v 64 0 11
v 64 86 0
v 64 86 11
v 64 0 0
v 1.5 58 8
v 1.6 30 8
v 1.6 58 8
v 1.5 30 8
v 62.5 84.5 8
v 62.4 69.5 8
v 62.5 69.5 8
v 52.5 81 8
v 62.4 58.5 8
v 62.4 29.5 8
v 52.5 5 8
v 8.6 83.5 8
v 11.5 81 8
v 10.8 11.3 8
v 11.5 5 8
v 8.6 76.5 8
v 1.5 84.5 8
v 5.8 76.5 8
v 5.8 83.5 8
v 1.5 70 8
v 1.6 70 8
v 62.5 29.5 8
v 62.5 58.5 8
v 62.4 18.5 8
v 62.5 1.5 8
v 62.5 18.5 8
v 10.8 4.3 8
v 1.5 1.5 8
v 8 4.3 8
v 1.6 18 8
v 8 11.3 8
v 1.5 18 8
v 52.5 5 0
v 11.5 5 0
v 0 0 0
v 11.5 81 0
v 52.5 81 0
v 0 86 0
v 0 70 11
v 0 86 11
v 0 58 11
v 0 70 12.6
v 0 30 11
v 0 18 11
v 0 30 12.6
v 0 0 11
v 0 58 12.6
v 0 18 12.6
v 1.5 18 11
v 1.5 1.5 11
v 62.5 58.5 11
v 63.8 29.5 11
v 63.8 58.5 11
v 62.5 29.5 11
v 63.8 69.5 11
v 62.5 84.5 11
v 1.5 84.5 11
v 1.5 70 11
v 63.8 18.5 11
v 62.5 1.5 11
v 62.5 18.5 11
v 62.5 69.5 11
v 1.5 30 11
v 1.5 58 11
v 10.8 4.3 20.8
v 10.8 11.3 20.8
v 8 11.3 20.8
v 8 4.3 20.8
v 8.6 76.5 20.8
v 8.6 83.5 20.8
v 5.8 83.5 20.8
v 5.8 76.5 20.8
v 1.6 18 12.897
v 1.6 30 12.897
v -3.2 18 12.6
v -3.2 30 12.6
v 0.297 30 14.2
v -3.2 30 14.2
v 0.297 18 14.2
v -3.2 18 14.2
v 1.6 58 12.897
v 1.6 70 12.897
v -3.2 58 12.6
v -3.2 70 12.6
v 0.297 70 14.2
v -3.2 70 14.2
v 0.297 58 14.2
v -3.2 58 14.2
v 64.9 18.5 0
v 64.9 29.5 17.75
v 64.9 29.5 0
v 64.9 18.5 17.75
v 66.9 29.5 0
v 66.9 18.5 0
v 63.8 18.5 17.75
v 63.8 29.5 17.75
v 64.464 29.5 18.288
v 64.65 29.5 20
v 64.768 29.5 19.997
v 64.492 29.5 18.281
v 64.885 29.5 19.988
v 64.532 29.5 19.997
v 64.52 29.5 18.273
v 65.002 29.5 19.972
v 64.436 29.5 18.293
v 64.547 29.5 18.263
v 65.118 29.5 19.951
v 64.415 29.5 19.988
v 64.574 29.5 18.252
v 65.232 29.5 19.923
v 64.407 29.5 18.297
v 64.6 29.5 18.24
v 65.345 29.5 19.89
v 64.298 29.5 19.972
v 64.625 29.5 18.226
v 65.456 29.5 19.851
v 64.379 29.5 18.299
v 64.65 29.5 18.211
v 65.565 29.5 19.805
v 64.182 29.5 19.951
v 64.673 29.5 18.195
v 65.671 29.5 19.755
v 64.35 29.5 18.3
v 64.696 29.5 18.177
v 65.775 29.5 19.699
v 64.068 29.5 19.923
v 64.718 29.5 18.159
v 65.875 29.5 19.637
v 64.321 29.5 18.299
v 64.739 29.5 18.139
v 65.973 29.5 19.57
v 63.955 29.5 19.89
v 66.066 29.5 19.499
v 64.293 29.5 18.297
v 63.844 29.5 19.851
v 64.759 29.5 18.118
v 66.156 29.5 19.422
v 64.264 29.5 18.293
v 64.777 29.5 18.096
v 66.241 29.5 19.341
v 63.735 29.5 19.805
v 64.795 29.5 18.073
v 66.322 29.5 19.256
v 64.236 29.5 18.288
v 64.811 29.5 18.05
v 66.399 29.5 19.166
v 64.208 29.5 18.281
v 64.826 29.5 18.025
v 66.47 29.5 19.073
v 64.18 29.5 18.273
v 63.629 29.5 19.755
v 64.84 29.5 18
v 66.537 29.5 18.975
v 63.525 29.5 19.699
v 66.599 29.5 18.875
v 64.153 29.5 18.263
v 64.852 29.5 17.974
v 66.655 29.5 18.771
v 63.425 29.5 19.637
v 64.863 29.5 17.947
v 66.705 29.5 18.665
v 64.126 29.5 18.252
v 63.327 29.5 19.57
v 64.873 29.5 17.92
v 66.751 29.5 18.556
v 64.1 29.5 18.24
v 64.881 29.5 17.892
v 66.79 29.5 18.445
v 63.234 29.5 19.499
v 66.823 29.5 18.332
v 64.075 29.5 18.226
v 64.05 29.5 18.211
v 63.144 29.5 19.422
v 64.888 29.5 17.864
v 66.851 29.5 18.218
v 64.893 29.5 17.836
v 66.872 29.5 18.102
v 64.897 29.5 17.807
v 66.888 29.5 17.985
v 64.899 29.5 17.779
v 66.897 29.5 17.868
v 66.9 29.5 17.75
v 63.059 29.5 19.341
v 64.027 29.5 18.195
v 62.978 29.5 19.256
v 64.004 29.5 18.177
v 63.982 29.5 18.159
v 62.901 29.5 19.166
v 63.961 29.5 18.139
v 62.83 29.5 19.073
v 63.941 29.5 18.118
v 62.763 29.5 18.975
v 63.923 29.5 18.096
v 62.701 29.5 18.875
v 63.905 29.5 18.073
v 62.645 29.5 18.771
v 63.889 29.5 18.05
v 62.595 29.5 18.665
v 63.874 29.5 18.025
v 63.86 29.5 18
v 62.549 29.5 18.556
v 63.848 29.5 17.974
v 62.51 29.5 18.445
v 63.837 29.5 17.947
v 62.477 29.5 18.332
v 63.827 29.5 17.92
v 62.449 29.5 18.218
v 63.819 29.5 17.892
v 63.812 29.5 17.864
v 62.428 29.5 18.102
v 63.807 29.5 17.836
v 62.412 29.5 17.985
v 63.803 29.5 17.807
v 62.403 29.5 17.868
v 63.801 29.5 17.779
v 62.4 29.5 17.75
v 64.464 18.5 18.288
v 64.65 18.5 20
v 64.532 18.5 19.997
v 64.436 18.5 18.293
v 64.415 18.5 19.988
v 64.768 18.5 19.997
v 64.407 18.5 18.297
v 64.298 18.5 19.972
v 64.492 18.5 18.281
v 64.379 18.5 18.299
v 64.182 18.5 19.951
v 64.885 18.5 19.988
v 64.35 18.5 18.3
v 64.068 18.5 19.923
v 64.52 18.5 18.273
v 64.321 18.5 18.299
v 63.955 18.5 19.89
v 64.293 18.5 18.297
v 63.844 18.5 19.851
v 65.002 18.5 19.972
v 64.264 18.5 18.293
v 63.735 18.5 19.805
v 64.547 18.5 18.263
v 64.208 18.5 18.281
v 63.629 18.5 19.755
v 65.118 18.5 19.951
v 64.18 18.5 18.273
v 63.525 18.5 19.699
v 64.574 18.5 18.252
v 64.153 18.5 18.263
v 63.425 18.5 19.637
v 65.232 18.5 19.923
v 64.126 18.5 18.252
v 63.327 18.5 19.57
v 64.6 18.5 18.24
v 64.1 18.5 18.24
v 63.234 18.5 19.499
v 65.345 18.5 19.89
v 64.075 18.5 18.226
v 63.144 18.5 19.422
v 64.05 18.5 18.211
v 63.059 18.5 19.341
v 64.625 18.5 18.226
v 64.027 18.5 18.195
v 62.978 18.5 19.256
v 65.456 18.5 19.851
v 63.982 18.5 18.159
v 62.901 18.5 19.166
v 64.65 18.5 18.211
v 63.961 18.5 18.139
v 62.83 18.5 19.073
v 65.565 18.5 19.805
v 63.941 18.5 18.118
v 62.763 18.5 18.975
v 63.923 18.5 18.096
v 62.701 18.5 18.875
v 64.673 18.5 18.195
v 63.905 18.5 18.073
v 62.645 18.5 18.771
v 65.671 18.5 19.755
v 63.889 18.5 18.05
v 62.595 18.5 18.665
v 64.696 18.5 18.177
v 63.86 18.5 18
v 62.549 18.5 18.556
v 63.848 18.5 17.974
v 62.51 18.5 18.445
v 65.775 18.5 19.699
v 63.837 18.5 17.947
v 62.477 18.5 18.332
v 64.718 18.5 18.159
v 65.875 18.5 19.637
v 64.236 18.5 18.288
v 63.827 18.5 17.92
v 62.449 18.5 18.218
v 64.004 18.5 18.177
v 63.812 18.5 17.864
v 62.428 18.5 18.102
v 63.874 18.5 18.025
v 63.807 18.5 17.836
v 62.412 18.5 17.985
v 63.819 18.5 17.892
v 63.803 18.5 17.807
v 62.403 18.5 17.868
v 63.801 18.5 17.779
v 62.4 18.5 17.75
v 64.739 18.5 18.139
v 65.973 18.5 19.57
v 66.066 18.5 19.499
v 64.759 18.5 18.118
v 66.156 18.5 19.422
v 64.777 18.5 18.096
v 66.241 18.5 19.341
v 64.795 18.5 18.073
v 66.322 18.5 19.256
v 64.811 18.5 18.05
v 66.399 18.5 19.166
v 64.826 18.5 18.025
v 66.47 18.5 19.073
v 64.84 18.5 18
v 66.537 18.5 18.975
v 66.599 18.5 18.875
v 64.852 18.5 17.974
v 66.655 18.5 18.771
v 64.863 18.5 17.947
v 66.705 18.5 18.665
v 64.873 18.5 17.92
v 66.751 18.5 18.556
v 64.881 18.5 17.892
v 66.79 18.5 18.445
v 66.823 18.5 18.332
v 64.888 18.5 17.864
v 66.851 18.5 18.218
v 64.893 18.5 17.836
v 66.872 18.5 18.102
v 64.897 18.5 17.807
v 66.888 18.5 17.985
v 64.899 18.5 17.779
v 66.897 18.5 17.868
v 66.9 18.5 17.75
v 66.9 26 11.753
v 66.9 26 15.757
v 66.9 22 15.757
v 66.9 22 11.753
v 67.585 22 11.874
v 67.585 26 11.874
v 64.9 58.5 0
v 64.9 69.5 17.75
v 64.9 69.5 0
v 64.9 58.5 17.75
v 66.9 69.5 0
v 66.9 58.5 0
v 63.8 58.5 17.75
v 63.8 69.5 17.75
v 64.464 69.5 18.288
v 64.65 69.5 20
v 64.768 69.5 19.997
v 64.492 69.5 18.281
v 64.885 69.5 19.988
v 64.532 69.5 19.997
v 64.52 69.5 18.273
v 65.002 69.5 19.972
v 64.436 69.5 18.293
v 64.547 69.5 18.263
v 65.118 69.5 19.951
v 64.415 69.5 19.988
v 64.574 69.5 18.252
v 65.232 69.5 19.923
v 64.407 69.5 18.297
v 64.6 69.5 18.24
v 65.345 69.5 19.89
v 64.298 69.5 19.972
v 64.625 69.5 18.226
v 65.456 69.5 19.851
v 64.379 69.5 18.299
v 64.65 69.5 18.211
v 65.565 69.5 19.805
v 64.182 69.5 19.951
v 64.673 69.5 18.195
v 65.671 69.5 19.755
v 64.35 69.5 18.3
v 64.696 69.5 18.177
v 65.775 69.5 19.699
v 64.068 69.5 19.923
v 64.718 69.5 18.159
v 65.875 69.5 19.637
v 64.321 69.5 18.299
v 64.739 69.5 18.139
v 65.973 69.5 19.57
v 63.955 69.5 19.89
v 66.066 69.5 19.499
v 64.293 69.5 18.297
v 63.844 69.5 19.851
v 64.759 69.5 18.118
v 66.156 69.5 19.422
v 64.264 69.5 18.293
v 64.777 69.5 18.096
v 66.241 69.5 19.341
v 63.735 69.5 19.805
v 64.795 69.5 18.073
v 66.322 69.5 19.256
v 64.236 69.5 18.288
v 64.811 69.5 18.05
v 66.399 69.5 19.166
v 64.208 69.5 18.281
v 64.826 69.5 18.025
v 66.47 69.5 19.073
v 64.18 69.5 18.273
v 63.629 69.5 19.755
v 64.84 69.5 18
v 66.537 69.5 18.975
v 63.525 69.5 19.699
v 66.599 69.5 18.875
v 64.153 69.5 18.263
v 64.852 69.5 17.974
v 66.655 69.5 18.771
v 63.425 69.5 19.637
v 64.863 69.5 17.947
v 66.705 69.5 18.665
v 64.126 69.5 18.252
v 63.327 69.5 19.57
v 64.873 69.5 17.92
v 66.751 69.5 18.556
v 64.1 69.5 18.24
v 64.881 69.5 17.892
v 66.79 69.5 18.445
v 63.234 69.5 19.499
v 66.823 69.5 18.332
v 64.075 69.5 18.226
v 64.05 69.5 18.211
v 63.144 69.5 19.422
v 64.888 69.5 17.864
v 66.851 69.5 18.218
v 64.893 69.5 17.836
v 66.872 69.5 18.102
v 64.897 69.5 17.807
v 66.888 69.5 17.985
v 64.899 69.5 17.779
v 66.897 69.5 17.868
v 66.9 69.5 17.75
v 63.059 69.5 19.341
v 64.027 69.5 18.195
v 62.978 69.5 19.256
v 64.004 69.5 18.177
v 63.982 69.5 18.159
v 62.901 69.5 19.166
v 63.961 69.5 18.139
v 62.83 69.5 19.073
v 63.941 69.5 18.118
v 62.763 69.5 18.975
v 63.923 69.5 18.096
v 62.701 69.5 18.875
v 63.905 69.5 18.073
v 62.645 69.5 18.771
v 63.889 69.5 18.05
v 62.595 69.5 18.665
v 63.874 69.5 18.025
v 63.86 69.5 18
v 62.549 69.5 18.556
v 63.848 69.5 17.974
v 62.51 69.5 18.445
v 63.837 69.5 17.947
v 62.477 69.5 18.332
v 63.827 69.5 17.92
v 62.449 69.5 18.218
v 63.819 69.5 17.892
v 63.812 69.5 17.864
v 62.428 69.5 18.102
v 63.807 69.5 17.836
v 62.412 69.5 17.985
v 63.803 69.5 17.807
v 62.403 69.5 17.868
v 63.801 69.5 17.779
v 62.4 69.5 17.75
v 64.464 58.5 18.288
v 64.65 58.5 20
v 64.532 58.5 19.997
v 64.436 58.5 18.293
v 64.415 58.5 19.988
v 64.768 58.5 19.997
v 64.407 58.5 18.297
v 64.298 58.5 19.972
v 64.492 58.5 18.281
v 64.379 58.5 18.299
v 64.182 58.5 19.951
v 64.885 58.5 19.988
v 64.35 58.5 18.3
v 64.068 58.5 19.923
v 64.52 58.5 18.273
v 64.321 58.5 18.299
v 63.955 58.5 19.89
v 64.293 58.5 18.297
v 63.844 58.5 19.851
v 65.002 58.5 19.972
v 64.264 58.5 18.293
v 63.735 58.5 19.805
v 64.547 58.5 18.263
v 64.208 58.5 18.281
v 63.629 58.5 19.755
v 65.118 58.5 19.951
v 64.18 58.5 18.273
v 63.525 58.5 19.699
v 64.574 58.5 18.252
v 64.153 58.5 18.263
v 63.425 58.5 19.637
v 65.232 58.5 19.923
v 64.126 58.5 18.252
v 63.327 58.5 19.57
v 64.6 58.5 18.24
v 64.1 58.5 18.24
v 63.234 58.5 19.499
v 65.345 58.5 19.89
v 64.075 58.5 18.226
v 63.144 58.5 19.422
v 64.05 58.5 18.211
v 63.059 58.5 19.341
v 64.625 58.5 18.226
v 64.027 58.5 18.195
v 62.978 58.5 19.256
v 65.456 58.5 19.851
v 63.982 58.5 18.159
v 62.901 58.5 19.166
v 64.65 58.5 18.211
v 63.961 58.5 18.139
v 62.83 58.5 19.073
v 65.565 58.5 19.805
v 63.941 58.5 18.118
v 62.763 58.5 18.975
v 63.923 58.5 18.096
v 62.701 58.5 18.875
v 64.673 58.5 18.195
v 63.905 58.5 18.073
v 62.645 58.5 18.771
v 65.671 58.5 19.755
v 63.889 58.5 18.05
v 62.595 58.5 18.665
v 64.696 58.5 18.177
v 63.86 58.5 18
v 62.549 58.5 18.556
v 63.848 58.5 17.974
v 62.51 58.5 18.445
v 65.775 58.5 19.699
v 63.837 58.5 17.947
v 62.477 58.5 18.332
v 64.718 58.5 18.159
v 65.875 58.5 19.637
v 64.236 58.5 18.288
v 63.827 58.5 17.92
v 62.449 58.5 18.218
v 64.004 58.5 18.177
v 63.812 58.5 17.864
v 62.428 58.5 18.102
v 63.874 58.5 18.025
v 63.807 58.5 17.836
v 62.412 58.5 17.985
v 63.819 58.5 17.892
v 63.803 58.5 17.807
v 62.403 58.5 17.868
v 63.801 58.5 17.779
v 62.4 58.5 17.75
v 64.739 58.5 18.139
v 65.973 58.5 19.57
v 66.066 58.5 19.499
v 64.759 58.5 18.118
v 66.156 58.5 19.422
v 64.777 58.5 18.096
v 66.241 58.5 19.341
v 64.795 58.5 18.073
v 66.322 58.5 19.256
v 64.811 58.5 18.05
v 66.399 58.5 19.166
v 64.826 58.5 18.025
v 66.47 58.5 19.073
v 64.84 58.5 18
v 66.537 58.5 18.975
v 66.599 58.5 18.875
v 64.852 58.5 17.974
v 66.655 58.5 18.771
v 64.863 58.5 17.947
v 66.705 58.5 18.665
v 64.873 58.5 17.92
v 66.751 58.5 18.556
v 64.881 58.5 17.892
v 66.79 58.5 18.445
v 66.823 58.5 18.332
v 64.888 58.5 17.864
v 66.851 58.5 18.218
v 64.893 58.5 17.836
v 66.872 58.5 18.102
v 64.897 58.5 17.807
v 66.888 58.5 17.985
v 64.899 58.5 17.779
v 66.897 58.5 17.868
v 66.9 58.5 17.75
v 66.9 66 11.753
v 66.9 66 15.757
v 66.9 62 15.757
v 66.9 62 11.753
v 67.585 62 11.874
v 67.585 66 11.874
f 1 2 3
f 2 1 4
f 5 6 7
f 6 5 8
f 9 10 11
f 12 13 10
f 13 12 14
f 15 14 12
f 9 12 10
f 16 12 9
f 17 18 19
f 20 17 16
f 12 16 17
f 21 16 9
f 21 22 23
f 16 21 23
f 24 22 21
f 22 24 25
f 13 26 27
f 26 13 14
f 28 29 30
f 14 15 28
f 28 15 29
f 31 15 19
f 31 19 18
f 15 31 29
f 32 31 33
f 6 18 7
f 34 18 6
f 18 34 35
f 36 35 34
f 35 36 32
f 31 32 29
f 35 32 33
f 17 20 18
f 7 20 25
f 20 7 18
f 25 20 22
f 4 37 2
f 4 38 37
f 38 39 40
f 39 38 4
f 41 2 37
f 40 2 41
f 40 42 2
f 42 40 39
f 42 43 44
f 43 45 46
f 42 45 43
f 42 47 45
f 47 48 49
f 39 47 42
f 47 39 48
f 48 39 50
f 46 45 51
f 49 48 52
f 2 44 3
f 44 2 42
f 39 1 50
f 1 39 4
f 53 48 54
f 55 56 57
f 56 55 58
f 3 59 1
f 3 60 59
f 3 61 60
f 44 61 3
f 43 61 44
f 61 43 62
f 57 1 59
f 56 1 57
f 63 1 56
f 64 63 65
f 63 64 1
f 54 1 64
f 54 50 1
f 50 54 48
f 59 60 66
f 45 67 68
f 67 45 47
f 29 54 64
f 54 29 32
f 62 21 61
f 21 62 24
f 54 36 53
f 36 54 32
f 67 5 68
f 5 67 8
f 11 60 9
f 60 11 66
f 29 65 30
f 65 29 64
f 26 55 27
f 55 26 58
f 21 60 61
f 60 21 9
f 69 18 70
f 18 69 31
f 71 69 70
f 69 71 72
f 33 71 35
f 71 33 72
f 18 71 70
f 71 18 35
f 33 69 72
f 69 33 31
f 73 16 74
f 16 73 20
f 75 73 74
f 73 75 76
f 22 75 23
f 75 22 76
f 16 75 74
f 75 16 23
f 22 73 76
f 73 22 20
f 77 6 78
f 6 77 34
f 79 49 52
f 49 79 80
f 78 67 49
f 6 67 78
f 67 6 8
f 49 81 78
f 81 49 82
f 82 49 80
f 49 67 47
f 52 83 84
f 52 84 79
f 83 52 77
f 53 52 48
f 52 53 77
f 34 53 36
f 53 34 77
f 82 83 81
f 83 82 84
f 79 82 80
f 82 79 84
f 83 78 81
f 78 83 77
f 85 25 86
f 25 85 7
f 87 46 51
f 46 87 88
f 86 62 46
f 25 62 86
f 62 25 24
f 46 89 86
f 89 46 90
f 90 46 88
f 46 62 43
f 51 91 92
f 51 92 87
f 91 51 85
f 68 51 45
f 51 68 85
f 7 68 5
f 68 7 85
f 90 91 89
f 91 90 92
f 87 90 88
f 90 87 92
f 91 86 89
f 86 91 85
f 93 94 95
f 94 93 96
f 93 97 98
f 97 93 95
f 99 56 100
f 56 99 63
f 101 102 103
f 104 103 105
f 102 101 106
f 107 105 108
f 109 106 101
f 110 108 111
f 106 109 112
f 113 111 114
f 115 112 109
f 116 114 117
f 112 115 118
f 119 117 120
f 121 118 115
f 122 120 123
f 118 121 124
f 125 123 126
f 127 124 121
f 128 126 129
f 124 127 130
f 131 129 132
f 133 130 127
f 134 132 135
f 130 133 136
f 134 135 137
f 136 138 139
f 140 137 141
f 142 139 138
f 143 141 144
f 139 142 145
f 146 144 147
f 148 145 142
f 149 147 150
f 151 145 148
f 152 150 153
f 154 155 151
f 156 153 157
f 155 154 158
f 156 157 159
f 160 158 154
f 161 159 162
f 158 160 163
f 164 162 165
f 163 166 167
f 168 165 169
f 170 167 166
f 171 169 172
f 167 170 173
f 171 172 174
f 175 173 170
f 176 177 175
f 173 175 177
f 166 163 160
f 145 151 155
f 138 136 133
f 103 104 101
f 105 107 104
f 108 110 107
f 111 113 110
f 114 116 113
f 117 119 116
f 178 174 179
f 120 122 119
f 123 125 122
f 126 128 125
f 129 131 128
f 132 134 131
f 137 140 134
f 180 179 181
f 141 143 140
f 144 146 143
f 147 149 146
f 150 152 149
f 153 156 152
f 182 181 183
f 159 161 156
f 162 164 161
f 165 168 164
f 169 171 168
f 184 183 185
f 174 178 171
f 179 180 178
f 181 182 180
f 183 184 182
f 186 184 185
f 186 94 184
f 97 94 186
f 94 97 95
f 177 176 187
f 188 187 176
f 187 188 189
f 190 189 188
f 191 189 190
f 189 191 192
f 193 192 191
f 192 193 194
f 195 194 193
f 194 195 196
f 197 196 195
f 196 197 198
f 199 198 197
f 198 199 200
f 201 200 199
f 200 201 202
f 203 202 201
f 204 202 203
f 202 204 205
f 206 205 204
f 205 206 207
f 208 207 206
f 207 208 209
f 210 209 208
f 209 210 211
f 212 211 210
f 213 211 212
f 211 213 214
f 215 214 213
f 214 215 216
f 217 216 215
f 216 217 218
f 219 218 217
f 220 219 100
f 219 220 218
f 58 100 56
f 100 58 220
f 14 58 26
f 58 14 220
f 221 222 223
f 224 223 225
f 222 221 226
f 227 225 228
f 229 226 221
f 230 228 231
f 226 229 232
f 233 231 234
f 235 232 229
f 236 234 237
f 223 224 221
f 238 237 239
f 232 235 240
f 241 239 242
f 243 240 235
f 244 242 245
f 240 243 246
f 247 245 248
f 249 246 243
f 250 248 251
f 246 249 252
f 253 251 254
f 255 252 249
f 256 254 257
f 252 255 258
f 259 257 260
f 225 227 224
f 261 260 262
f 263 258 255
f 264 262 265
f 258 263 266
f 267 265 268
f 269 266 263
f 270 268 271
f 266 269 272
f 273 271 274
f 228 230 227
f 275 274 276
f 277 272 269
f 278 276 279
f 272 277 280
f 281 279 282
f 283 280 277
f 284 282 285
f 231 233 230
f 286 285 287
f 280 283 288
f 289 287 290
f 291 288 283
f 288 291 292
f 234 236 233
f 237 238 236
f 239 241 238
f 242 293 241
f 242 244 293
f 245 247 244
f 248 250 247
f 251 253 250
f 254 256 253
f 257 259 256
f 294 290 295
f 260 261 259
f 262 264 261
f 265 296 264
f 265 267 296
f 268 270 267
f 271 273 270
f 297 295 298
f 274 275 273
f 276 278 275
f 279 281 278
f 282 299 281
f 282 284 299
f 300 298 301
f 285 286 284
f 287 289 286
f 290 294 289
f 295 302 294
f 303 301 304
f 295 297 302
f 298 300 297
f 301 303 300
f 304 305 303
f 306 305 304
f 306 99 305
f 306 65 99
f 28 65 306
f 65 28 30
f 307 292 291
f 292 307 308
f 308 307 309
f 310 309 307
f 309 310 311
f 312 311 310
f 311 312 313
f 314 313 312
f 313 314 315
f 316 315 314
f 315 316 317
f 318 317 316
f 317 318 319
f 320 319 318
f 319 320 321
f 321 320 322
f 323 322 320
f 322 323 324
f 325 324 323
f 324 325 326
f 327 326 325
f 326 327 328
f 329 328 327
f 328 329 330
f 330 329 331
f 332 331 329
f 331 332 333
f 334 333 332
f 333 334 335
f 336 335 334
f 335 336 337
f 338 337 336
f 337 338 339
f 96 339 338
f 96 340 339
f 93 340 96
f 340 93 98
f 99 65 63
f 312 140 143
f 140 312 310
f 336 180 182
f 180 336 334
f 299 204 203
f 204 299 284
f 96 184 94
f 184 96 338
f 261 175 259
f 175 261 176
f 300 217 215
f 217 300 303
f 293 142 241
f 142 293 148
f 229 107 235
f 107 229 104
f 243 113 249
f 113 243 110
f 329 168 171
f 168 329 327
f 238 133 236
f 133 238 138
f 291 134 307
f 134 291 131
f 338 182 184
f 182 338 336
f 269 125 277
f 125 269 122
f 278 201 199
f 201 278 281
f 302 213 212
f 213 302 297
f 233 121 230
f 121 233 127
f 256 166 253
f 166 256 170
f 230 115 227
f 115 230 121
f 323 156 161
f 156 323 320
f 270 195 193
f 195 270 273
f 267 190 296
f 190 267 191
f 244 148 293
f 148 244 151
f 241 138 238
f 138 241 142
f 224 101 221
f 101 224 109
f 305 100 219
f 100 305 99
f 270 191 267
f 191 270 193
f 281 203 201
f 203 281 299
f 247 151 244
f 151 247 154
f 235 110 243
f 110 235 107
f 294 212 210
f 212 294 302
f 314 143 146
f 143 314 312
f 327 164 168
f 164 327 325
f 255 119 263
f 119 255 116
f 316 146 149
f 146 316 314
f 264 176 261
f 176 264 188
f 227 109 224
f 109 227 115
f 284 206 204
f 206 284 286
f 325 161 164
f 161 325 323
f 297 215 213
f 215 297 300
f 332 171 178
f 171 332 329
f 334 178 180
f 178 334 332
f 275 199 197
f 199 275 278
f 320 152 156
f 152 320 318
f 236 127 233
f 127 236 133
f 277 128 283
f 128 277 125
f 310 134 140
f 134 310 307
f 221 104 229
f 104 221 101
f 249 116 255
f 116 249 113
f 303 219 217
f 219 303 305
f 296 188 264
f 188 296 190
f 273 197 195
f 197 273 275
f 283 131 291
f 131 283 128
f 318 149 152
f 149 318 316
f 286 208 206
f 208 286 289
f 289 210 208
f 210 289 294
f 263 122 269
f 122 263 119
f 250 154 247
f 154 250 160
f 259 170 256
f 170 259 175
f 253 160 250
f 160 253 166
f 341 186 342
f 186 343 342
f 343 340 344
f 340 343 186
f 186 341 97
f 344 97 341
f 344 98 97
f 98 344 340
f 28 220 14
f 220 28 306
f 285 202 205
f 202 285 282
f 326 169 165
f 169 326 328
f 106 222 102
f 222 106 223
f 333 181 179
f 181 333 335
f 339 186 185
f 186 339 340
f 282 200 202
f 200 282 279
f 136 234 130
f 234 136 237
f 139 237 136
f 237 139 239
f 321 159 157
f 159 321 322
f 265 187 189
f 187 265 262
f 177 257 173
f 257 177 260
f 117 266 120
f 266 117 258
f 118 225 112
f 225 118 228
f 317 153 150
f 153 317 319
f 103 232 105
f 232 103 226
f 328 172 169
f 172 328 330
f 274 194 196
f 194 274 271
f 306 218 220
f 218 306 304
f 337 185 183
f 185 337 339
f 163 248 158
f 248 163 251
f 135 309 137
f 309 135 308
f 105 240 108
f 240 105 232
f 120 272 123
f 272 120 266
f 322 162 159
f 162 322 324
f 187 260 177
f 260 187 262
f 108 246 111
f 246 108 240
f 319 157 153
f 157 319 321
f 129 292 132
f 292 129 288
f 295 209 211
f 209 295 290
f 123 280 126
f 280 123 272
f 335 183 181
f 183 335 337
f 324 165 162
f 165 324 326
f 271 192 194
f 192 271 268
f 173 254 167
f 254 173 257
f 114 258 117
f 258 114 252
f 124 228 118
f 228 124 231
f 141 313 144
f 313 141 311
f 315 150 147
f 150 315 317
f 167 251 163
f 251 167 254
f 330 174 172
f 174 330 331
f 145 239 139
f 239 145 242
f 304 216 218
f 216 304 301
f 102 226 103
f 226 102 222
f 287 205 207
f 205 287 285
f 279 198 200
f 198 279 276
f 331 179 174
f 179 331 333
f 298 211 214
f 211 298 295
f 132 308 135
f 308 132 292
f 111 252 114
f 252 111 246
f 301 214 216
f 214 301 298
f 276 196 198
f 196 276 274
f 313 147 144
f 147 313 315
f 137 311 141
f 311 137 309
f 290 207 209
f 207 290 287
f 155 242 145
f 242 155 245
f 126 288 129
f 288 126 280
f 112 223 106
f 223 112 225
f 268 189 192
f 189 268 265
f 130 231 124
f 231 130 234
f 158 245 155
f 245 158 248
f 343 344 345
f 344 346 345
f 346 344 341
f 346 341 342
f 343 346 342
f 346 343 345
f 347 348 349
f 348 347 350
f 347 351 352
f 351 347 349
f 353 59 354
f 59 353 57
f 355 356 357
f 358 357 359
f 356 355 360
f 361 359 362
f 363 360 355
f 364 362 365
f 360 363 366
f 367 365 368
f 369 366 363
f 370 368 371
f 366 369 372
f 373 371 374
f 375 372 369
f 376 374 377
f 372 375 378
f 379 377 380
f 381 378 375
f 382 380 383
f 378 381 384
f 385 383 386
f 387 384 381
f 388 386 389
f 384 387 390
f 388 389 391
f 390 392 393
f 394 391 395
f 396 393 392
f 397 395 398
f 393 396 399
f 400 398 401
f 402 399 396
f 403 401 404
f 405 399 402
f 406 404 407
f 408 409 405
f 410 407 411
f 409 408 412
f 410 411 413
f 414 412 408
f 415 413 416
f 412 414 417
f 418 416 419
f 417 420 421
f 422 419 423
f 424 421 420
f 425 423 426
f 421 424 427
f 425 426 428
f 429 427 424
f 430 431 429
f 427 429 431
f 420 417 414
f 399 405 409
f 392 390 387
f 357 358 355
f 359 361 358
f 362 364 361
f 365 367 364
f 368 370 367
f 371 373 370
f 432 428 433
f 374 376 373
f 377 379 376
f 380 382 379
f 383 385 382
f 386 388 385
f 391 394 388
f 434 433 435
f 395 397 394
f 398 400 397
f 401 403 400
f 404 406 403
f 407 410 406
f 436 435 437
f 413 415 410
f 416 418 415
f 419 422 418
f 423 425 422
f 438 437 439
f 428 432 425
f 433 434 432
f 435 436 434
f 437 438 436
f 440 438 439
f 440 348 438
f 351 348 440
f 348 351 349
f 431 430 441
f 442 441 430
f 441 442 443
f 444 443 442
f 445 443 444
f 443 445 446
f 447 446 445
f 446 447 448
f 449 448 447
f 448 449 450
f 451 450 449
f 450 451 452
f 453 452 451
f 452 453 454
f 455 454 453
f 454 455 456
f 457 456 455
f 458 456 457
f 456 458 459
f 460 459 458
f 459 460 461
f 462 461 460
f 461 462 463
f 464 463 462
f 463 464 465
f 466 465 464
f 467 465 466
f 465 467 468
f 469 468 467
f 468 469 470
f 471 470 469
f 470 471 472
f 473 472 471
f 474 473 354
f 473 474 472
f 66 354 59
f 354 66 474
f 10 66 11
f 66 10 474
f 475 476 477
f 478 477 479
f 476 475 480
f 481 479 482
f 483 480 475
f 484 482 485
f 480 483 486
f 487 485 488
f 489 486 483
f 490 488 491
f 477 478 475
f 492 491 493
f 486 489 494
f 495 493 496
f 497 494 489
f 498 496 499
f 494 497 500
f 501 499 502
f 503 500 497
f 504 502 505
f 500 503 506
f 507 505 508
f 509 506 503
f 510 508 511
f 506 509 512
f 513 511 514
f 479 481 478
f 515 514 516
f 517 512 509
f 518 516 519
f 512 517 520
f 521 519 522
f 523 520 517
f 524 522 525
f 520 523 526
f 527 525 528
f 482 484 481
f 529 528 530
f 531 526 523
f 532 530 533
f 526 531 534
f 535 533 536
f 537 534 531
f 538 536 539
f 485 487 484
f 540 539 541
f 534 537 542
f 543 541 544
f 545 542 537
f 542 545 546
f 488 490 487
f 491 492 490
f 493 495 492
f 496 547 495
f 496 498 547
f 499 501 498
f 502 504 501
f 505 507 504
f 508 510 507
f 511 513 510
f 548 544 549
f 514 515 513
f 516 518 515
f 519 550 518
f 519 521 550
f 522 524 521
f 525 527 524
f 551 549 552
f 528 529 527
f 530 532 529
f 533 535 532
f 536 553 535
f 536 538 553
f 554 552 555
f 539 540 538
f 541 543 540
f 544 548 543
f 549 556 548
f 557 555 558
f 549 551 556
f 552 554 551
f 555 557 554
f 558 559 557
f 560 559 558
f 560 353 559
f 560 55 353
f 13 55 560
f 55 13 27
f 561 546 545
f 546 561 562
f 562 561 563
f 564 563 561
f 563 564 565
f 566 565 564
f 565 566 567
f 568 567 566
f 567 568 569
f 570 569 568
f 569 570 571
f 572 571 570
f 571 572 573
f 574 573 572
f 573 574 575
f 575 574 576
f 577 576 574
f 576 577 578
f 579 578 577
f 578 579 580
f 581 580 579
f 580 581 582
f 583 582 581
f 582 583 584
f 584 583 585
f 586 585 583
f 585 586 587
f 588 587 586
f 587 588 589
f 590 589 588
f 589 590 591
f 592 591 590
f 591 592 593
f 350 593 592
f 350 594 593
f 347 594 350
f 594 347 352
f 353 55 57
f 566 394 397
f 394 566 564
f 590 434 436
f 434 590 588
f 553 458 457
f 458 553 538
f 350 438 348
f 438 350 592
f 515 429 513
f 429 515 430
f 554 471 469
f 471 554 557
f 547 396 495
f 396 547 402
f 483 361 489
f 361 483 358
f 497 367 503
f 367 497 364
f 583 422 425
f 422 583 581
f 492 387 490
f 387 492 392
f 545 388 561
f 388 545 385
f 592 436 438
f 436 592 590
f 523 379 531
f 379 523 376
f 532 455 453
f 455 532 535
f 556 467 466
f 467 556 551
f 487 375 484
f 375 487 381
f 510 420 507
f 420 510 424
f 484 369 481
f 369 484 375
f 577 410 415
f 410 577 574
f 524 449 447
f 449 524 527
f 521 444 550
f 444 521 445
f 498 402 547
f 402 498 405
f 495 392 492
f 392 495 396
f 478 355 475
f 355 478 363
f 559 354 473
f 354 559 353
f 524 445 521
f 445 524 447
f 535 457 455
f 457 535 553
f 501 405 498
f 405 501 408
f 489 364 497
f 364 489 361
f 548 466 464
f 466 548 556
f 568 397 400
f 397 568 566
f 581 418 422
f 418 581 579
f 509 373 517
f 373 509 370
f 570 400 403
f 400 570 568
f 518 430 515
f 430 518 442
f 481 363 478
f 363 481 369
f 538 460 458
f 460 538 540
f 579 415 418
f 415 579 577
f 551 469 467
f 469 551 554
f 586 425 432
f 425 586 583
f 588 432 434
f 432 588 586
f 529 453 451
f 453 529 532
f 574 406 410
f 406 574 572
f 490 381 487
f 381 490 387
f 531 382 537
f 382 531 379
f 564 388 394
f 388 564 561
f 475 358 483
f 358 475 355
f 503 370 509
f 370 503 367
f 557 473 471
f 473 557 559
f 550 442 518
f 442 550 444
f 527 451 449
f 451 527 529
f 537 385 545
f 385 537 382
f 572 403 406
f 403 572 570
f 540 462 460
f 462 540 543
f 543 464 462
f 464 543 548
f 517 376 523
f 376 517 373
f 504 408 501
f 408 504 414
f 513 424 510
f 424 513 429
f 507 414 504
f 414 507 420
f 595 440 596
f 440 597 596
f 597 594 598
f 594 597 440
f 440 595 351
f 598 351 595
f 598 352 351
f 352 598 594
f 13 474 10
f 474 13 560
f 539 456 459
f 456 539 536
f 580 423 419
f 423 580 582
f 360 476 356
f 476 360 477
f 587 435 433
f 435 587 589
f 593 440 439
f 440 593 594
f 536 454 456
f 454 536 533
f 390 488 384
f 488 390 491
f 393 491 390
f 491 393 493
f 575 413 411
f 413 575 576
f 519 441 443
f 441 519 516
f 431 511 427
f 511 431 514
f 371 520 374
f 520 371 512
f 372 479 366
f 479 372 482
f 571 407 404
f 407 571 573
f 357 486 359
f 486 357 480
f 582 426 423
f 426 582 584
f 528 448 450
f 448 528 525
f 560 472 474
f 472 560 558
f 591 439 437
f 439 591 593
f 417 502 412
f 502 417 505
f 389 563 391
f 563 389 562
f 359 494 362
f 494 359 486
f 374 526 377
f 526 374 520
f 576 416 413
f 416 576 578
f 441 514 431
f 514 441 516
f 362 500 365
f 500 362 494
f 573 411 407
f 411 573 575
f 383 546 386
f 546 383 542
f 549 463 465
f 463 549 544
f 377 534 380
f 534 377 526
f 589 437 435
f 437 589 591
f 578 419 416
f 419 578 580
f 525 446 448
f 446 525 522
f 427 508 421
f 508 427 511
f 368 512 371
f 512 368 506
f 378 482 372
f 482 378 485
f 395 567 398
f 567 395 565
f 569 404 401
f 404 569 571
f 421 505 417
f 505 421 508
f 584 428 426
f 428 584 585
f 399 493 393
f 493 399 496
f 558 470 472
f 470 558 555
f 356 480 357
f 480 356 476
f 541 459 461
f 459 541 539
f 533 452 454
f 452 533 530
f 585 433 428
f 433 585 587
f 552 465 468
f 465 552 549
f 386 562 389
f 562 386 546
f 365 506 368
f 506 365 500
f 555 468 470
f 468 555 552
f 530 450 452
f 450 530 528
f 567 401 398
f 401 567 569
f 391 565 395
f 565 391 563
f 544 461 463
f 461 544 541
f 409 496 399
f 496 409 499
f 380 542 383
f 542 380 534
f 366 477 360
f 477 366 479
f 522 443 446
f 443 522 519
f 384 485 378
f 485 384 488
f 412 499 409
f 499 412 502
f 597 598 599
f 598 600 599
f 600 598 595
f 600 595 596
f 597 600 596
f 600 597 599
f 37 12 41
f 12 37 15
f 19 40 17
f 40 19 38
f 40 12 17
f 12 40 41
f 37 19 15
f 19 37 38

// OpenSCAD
// ramecek
fullx = 64;
fully = 86;
fullz = 8;
// klec na 2x LiIon 18650
bkx = 41;
bky = 76;
bkz = 23;
// obrysovy ramecek
orstena = 1.5;
orz = 3;

// kontakt baterie na strane pevnych uchytu
batxminus = 8;
batxplus = 5.8;
batx = 2.8;
baty = 7;
batyminus = 7.8;
batyplus = 80;
batz = 13;
batzzero = 7.8;

// ohyby pro pant 
pantypos1 = 24;
pantypos2 = 64;
panty = 12;
pantd = 1.6;
panto = 1.5;
pantz = fullz+orz+pantd;

// spony: obracene U vyska 9mm, sirka 12mm hloubka 5mm
sponax = 4.5;
sponay = 11;
sponaz = 9;
sponad = 1.7;


posxvypl = (fullx - bkx)/2;
posyvypl = (fully - bky)/2;
poszvypl = 0;

module zaklblok() {
   cube([fullx,fully,fullz]);
   translate([0,0,fullz]) { cube([fullx,orstena,orz]);}
   translate([0,0,fullz]) { cube([orstena,fully,orz]);}
   translate([fullx-orstena,0,fullz]) { cube([orstena,fully,orz]);}
   translate([0,fully-orstena,fullz]) { cube([fullx,orstena,orz]);}
}

module batconn() {
   translate([batxminus,batyminus - baty/2,batzzero]) cube([batx,baty,batz]);
   translate([batxplus,(batyplus-baty/2),batzzero]) cube([batx,baty,batz]);
}

module pant() {
  difference() {
    union() {
      cube([pantd,panty,pantz]);
      translate([-2*pantd,0,pantz]) cube([3*pantd,panty,pantd]); 
    }
    union() {
    translate([-pantd*0.1,0,pantz+2.7*pantd]) rotate([0,135,0]) cube([pantd,panty,pantd*2.7]);
    }
  }  
}
  
module panty() {
   translate([0,pantypos1 - panty/2,0]) pant();
   translate([0,pantypos2 - panty/2,0]) pant();
}

module spony() {
 translate([fullx-pantd,pantypos1 - sponay/2,0]) spona();
 translate([fullx-pantd,pantypos2 - sponay/2,0]) spona();   
}
module spona() {
    difference() {
      union() {  // plna cast
        cube([sponax,sponay,fullz+orz+sponaz-sponax/2]);
        translate([sponax/2,0,fullz+orz+sponaz-sponax/2])
          rotate([270,0,0])
            cylinder(h=sponay,d=sponax,$fn=120);
        translate([sponax-0.3,sponay/2-2,fullz+orz+0.7])
          rotate([0,-10,0])
            cube([1,4,4]);
      }
      union() {  // odebrana cast
        translate([sponax/2-sponad/2,0,0]) {
          cube([sponax-2*sponad,sponay,fullz+orz+sponaz-sponax/2]);
          translate([sponax/2-sponad,0,fullz+orz+sponaz-sponax/2])
            rotate([270,0,0])
              cylinder(h=sponay,d=sponax-2*sponad,$fn=120);  
        }
       }              
      }
}

module drzak() { 
difference() {
  union(){  
    zaklblok();
    batconn();  
    panty();
    spony();  
   }  
  union() {
    translate([posxvypl,posyvypl,poszvypl])
      cube([fullx-2*posxvypl,fully-2*posyvypl,fullz]);
      }
  }
}
  
drzak();
//pant();
//spona();
